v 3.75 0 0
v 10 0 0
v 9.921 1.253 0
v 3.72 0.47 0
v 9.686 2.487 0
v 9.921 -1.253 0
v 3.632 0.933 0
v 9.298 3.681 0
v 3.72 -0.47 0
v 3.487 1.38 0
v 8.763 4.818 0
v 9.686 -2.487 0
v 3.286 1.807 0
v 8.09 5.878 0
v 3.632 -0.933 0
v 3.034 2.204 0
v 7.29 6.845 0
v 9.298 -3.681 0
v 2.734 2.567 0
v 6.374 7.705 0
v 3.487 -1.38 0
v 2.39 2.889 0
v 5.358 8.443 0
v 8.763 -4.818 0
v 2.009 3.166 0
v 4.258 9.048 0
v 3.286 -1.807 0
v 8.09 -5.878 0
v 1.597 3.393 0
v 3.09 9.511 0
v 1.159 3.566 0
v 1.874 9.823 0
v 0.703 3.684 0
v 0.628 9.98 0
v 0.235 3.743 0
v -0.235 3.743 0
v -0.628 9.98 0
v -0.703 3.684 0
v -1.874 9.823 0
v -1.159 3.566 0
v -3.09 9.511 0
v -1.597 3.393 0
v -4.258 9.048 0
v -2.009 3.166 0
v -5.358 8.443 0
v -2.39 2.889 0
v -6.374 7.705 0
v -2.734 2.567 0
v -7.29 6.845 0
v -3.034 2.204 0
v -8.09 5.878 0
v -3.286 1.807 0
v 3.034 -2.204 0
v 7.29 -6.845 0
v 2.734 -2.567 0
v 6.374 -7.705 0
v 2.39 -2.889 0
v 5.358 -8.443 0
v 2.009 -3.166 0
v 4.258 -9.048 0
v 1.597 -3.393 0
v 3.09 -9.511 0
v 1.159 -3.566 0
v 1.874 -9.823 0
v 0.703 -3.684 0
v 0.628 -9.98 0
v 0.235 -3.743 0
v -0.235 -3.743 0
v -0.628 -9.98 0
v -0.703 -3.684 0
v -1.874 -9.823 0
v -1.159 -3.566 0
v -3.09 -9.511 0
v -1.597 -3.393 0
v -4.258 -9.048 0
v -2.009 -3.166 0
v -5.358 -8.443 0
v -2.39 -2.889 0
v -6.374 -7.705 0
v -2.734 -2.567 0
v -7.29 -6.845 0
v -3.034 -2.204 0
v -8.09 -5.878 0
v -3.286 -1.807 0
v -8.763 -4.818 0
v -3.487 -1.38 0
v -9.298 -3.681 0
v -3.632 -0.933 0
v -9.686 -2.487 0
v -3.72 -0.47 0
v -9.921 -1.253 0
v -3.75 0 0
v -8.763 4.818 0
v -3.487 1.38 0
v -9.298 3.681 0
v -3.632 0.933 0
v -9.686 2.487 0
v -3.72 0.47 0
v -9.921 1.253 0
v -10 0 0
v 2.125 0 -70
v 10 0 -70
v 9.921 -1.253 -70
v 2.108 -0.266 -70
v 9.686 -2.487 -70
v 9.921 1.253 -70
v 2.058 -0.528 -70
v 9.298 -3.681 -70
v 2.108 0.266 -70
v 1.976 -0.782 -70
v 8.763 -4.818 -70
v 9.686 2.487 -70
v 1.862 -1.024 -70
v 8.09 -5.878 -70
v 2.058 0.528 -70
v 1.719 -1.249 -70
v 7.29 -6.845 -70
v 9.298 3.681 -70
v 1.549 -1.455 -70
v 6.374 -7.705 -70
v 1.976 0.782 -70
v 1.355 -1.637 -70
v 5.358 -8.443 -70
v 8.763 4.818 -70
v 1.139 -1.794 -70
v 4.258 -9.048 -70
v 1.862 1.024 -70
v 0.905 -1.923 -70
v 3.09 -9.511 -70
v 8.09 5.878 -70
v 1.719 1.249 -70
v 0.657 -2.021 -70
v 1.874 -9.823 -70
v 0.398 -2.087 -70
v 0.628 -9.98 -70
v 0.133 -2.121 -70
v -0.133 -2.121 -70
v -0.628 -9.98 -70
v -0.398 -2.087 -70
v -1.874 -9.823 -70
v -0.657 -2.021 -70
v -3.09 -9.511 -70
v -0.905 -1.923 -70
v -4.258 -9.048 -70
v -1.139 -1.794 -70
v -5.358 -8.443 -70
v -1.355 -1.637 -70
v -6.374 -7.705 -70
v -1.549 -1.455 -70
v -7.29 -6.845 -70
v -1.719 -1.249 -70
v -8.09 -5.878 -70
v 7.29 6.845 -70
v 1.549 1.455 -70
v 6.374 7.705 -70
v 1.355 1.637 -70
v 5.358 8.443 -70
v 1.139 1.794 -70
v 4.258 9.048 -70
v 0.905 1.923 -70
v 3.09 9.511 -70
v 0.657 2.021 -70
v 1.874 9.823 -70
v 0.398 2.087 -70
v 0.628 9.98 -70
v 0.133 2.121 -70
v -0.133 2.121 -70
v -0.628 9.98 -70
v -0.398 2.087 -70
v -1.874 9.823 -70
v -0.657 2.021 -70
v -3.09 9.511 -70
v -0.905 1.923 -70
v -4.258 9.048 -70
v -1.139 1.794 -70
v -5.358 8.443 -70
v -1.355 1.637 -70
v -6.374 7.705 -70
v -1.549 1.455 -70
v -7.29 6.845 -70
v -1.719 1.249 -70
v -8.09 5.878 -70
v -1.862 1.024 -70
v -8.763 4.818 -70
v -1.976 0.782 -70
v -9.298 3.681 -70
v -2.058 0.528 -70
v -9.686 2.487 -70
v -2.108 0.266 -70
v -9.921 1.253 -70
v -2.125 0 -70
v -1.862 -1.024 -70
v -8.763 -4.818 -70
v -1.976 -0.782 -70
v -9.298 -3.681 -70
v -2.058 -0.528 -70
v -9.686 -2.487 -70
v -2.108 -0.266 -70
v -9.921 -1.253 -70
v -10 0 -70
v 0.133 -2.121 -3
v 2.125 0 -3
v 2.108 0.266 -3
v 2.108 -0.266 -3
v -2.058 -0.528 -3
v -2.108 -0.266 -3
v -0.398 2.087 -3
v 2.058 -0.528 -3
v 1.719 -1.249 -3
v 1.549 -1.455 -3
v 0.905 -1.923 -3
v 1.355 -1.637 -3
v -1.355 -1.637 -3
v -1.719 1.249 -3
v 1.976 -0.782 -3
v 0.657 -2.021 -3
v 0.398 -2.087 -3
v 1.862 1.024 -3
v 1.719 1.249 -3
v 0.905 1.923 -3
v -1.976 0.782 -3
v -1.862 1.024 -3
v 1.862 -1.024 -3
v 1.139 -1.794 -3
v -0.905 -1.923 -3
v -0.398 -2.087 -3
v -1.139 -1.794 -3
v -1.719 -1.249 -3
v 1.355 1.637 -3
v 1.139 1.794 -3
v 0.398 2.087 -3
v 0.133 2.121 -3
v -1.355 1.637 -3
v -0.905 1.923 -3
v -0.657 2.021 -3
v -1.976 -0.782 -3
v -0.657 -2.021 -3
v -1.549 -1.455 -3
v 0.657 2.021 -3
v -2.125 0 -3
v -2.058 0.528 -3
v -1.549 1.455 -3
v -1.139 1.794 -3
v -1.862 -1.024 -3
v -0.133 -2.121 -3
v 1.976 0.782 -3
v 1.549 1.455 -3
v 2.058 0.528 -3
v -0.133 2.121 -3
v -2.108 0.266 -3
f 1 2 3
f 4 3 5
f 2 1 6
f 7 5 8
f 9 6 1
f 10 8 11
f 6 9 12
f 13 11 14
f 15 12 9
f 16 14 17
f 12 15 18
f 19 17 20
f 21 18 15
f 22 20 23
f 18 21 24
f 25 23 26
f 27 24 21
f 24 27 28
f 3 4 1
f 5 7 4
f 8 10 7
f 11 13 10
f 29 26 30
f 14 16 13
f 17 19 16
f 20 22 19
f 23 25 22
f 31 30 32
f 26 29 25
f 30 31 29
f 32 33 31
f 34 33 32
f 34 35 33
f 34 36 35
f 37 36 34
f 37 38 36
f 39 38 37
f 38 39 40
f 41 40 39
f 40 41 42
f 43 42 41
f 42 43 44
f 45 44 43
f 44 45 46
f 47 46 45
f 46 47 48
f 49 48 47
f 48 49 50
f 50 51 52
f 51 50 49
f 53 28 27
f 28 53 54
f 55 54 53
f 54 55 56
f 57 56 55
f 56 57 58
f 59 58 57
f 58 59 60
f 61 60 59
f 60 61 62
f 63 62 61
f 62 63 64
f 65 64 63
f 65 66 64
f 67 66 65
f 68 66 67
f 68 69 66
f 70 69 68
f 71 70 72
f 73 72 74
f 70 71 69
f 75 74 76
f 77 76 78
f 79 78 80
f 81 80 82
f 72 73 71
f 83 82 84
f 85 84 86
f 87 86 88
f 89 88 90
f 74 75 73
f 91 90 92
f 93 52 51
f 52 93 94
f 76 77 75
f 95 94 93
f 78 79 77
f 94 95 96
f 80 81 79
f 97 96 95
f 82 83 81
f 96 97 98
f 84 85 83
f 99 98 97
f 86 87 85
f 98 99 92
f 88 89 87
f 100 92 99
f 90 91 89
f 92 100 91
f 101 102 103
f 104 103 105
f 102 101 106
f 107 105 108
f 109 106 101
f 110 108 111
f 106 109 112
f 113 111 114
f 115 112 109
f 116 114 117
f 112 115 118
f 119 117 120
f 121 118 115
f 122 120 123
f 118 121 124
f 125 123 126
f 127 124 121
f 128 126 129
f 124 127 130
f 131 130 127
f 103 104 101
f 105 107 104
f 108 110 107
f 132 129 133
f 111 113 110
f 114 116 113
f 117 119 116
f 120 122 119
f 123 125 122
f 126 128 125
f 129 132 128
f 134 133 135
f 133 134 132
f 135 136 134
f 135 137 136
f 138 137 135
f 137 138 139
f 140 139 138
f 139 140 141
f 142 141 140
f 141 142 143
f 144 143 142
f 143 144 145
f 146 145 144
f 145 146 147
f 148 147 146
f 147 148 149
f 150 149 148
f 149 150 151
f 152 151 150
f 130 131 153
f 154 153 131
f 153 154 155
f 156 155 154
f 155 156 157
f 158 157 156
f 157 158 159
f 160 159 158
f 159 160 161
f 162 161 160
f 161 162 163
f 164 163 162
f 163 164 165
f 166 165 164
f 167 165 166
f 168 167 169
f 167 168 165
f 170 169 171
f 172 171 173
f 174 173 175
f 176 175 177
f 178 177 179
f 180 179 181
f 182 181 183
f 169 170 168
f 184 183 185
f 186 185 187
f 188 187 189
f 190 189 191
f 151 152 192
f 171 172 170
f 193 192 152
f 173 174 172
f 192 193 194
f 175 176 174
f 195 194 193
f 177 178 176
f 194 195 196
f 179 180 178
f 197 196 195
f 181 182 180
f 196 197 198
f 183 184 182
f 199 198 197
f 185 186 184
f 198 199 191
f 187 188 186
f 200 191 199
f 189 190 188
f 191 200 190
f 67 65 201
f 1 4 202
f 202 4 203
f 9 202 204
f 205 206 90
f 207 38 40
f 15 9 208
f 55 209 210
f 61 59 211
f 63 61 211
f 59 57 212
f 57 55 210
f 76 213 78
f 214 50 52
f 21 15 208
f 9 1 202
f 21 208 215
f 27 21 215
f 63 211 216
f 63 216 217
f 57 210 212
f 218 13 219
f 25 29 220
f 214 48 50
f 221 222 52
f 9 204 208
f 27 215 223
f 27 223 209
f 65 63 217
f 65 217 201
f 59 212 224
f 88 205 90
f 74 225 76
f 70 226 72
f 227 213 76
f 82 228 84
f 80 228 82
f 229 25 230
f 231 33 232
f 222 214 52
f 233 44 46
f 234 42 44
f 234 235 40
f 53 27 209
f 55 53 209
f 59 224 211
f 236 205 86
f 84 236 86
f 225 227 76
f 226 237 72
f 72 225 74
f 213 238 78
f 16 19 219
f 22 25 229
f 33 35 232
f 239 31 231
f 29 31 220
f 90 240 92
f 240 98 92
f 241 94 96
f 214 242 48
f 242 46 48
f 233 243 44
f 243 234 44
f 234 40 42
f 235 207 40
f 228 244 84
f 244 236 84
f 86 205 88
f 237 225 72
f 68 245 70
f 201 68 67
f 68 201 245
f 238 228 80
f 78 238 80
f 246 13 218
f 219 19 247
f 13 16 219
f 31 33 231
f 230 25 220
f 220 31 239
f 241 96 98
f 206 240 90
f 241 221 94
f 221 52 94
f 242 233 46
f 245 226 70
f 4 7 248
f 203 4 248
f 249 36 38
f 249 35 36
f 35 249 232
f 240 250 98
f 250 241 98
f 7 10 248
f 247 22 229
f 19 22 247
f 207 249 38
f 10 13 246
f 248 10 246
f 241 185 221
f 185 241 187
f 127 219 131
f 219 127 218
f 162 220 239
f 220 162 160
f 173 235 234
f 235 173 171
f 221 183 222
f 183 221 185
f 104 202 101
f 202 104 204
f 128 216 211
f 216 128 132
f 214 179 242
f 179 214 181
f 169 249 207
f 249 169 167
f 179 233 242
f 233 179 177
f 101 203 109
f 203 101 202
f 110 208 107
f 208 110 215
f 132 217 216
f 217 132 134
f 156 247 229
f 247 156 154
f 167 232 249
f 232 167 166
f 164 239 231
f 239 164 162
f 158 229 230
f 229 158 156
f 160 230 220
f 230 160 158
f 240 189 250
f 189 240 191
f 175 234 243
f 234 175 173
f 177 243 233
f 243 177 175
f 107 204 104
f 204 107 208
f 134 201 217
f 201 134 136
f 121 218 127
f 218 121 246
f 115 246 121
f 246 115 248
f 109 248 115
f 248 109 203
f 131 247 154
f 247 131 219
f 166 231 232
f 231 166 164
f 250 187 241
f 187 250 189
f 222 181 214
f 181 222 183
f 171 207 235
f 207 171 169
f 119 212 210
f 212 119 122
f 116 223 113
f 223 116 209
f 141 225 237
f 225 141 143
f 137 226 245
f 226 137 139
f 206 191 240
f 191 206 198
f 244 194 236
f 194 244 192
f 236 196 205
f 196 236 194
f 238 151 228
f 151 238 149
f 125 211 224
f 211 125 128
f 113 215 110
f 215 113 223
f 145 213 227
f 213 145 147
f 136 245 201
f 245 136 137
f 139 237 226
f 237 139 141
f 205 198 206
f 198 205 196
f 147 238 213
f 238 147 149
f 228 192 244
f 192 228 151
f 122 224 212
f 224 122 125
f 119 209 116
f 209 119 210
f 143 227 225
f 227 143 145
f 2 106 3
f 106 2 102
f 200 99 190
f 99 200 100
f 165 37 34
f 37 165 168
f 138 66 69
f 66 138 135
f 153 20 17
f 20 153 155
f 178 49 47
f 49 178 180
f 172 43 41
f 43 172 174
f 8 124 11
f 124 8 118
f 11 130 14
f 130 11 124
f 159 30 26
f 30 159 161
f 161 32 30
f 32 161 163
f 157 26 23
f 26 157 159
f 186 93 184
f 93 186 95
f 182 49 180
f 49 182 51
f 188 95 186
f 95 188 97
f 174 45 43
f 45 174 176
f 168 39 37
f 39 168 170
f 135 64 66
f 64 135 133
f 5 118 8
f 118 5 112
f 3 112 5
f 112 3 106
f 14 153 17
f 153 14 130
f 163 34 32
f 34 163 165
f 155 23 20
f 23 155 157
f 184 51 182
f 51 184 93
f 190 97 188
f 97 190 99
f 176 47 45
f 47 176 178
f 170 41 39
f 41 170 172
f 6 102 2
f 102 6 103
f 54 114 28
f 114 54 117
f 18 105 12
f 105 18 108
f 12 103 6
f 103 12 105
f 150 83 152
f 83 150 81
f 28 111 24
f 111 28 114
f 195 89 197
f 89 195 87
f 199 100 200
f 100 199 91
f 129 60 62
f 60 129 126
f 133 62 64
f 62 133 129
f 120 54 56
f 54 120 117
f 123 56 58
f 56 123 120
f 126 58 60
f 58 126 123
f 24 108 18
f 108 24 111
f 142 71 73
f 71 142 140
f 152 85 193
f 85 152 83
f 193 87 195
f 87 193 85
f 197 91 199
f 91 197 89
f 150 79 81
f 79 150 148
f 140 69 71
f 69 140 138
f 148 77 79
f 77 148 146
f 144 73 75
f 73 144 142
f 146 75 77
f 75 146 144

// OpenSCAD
$fn = 50;


difference() {
	union() {
		translate(v = [0, 0, -70.0000000000]) {
			cylinder(h = 70, r = 10.0000000000);
		}
		cylinder(h = 0, r = 19.0000000000);
	}
	union() {
		translate(v = [0, 0, 0]) {
			rotate(a = [0, 0, 0]) {
				difference() {
					union() {
						#translate(v = [0, 0, -70.0000000000]) {
							cylinder(h = 70, r = 2.0000000000);
						}
						#translate(v = [0, 0, -3]) {
							cylinder(h = 3, r1 = 2.1250000000, r2 = 3.7500000000);
						}
						#translate(v = [0, 0, -70.0000000000]) {
							cylinder(h = 70, r = 2.1250000000);
						}
						#translate(v = [0, 0, -70.0000000000]) {
							cylinder(h = 70, r = 2.0000000000);
						}
					}
					union();
				}
			}
		}
	}
}
